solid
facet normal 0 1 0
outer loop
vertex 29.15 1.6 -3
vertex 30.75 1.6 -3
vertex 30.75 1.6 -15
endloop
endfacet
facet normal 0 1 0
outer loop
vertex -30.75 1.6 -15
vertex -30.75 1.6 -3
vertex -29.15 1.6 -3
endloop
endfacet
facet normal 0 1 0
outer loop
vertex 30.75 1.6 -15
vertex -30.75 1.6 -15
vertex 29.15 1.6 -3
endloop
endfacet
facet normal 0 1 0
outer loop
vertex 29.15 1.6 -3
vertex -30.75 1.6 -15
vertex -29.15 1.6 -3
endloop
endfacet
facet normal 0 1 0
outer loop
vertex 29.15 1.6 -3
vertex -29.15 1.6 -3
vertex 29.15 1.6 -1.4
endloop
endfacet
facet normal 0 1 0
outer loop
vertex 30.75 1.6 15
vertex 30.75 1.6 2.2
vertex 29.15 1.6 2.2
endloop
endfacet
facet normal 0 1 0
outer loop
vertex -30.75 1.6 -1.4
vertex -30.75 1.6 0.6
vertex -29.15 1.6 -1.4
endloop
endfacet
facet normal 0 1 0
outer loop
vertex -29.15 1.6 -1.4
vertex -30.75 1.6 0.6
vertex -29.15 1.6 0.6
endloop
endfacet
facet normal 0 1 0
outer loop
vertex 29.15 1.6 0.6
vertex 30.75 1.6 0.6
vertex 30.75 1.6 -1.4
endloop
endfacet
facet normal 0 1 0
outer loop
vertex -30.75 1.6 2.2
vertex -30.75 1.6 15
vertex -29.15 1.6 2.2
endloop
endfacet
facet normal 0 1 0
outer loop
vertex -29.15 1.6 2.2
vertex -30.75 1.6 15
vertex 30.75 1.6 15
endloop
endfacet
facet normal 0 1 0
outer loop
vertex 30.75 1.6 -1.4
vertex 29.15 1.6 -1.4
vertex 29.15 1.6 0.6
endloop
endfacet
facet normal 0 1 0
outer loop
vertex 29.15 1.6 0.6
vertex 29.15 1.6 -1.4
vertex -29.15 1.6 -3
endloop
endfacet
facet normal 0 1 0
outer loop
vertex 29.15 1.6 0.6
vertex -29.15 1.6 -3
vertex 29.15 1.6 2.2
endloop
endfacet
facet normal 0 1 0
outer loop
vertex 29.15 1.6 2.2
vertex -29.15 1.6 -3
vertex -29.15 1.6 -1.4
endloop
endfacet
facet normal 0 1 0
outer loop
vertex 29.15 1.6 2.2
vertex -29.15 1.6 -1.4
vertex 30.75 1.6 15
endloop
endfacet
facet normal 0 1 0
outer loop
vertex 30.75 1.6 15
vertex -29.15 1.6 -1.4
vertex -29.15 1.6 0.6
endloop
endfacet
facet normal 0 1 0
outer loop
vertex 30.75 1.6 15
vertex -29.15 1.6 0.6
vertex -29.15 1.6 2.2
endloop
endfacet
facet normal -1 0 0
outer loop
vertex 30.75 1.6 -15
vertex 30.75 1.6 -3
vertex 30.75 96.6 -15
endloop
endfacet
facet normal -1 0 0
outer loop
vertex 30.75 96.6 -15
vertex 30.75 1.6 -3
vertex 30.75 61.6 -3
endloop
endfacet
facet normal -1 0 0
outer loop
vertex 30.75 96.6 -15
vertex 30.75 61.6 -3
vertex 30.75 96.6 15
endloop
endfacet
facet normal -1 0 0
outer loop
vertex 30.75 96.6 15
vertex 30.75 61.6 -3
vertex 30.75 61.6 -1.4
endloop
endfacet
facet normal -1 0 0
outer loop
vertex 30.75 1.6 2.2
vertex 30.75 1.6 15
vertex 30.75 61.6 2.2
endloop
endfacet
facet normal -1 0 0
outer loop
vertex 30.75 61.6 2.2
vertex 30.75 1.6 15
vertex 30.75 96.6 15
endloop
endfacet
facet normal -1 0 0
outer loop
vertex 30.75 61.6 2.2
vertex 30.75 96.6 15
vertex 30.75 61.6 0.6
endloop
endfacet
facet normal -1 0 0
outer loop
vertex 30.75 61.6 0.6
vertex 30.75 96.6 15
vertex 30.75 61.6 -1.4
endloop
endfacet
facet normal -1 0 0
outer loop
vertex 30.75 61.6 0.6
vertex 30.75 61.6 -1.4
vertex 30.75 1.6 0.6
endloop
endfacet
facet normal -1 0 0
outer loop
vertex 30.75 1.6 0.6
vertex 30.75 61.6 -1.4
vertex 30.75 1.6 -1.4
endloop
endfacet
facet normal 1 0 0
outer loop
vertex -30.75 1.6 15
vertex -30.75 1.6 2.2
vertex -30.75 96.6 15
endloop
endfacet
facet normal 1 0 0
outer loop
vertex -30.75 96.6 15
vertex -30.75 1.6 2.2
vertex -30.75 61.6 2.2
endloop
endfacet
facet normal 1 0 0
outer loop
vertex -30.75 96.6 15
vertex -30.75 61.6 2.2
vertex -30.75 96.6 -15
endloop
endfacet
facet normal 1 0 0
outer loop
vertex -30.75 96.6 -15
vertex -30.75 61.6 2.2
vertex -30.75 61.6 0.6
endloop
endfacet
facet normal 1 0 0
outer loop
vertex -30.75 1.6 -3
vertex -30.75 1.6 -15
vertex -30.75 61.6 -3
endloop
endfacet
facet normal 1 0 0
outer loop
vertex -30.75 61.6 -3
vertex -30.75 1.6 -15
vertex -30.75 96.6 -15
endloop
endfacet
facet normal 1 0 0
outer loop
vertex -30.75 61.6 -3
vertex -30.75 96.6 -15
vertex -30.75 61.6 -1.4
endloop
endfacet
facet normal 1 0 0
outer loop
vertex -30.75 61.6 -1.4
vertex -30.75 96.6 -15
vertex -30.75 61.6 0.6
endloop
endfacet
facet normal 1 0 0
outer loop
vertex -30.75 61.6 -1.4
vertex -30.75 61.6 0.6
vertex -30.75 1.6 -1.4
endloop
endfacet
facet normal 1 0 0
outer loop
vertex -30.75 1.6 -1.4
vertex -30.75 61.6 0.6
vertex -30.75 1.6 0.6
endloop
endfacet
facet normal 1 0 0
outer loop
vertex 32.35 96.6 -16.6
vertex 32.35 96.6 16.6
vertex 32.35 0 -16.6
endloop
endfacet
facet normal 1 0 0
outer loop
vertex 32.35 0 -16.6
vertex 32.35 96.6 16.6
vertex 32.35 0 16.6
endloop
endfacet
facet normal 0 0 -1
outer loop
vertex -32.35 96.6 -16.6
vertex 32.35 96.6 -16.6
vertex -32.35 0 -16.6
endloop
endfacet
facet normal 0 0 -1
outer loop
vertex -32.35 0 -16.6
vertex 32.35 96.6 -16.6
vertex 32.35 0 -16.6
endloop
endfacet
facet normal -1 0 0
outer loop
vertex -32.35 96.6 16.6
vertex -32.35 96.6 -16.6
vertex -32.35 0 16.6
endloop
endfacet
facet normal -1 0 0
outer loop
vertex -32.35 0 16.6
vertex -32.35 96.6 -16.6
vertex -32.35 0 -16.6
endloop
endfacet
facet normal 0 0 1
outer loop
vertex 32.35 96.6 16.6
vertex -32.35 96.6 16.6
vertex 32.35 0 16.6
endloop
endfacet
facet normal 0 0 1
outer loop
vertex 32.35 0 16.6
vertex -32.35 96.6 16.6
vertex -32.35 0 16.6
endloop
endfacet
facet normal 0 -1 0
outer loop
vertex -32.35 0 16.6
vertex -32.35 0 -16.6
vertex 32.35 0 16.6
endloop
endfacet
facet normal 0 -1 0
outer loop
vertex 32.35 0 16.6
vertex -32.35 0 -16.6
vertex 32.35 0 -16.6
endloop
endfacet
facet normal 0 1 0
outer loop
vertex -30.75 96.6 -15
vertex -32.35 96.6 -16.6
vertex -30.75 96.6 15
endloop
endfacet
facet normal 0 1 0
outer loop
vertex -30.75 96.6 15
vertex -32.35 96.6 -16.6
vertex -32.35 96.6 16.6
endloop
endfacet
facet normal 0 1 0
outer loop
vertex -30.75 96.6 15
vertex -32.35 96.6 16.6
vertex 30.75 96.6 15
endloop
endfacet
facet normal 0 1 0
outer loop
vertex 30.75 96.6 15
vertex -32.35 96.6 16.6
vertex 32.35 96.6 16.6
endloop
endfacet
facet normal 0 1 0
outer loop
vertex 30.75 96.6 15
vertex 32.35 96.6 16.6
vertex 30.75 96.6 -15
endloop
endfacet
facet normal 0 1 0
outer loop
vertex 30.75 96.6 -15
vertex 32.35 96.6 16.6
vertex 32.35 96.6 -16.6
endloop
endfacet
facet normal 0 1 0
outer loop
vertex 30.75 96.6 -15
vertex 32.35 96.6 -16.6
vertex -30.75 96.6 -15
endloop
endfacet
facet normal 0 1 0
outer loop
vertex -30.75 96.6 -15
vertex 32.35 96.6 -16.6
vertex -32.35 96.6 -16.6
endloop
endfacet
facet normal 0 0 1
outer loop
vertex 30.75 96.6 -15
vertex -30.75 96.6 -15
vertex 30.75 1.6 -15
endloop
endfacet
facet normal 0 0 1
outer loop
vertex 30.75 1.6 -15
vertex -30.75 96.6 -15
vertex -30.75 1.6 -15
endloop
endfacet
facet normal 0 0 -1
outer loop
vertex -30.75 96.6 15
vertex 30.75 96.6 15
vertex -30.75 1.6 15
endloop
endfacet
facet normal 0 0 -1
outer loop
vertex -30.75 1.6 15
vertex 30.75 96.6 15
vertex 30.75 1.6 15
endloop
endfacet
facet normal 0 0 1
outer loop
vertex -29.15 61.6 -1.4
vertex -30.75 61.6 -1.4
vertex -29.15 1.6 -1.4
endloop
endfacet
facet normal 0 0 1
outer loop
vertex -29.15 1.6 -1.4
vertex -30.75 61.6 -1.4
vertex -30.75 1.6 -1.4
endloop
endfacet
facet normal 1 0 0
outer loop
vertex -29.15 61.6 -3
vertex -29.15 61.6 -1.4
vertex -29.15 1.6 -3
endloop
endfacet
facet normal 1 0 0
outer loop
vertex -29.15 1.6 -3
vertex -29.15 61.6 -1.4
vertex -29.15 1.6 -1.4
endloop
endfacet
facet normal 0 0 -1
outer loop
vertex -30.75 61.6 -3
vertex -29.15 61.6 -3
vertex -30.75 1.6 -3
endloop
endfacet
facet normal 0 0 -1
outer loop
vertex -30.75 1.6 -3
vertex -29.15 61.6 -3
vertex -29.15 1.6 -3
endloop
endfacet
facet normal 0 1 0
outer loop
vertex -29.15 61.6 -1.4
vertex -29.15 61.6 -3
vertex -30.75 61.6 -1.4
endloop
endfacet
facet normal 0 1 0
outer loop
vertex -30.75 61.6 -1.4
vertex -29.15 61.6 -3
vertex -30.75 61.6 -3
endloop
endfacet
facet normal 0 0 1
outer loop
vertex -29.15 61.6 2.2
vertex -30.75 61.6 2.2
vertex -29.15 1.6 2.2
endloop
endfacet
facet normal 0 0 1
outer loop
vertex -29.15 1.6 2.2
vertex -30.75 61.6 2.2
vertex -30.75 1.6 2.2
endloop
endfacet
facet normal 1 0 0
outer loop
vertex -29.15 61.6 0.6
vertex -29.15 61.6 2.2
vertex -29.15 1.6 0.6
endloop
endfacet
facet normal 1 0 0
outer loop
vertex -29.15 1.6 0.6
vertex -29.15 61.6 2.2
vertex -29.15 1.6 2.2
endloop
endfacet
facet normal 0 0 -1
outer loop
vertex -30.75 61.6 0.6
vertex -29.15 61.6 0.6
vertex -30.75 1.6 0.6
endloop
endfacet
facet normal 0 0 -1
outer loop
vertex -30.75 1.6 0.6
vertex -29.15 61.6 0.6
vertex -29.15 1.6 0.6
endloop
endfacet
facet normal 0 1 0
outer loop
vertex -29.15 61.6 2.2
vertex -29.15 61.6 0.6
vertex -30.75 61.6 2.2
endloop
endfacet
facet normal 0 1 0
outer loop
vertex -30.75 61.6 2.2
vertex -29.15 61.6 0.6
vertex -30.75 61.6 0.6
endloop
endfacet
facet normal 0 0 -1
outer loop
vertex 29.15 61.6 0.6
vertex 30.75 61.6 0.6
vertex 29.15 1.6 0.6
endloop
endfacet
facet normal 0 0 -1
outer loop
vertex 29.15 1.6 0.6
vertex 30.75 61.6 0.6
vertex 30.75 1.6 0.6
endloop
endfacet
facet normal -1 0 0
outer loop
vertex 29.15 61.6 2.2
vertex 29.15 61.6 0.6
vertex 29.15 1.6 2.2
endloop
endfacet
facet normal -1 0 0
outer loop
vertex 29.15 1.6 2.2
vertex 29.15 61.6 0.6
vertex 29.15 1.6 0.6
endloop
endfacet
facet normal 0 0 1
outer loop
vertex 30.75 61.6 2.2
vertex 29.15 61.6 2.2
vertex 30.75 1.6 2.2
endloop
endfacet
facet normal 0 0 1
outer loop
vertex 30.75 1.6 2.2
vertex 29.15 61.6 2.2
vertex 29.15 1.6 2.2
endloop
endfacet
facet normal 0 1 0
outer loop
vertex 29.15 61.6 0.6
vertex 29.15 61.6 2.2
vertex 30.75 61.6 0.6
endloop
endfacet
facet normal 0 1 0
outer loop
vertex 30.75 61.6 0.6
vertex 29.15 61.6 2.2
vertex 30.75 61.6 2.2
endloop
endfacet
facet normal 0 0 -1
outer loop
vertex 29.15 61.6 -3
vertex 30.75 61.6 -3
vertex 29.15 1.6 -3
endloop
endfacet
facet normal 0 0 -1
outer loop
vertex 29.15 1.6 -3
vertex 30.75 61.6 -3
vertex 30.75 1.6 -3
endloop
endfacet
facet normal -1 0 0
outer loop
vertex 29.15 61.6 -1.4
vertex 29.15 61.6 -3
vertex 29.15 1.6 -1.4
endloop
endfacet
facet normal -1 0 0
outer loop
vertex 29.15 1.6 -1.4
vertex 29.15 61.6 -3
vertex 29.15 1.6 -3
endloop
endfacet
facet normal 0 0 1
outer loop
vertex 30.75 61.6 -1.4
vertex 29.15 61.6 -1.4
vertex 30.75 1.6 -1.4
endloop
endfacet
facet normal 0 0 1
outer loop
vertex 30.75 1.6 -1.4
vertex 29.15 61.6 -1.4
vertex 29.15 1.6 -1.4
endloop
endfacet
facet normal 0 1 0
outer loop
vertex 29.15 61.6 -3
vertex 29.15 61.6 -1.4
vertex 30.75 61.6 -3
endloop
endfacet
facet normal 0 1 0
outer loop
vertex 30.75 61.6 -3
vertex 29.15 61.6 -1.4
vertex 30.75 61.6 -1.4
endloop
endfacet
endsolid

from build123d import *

# Parameters (mm, degrees)
SKETCH_1_W      = 64.7
SKETCH_1_H      = 33.2
EXTRUDE_1_DEPTH = 1.6
SKETCH_2_W      = 64.7
SKETCH_2_H      = 33.2
SKETCH_2_W_2    = 61.5
SKETCH_2_H_2    = 30
EXTRUDE_2_DEPTH = 95
SKETCH_4_W      = 1.6
SKETCH_4_H      = 1.6
EXTRUDE_3_DEPTH = 60


with BuildPart() as part:
    # Эскиз1 → Бобышка-Вытянуть1 (new body)
    with BuildSketch(Plane(origin=(0, 0, 0), x_dir=(1, 0, 0), z_dir=(0, 1, 0))):
        Rectangle(SKETCH_1_W, SKETCH_1_H)
    extrude(amount=EXTRUDE_1_DEPTH)

    # Эскиз2 → Бобышка-Вытянуть2 (add)
    with BuildSketch(Plane(origin=(0, 1.6, 0), x_dir=(1, 0, 0), z_dir=(0, 1, 0))):
        Rectangle(SKETCH_2_W, SKETCH_2_H)
        Rectangle(SKETCH_2_W_2, SKETCH_2_H_2, mode=Mode.SUBTRACT)
    extrude(amount=EXTRUDE_2_DEPTH)

    # Эскиз4 → Бобышка-Вытянуть3 (add)
    with BuildSketch(Plane(origin=(0, 1.6, 0), x_dir=(1, 0, 0), z_dir=(0, 1, 0))):
        with Locations((-29.95, 2.2)):
            Rectangle(SKETCH_4_W, SKETCH_4_H)
        with Locations((29.95, -1.4)):
            Rectangle(SKETCH_4_W, SKETCH_4_H)
        with Locations((-29.95, -1.4)):
            Rectangle(SKETCH_4_W, SKETCH_4_H)
        with Locations((29.95, 2.2)):
            Rectangle(SKETCH_4_W, SKETCH_4_H)
    extrude(amount=EXTRUDE_3_DEPTH)


solid = part.part
